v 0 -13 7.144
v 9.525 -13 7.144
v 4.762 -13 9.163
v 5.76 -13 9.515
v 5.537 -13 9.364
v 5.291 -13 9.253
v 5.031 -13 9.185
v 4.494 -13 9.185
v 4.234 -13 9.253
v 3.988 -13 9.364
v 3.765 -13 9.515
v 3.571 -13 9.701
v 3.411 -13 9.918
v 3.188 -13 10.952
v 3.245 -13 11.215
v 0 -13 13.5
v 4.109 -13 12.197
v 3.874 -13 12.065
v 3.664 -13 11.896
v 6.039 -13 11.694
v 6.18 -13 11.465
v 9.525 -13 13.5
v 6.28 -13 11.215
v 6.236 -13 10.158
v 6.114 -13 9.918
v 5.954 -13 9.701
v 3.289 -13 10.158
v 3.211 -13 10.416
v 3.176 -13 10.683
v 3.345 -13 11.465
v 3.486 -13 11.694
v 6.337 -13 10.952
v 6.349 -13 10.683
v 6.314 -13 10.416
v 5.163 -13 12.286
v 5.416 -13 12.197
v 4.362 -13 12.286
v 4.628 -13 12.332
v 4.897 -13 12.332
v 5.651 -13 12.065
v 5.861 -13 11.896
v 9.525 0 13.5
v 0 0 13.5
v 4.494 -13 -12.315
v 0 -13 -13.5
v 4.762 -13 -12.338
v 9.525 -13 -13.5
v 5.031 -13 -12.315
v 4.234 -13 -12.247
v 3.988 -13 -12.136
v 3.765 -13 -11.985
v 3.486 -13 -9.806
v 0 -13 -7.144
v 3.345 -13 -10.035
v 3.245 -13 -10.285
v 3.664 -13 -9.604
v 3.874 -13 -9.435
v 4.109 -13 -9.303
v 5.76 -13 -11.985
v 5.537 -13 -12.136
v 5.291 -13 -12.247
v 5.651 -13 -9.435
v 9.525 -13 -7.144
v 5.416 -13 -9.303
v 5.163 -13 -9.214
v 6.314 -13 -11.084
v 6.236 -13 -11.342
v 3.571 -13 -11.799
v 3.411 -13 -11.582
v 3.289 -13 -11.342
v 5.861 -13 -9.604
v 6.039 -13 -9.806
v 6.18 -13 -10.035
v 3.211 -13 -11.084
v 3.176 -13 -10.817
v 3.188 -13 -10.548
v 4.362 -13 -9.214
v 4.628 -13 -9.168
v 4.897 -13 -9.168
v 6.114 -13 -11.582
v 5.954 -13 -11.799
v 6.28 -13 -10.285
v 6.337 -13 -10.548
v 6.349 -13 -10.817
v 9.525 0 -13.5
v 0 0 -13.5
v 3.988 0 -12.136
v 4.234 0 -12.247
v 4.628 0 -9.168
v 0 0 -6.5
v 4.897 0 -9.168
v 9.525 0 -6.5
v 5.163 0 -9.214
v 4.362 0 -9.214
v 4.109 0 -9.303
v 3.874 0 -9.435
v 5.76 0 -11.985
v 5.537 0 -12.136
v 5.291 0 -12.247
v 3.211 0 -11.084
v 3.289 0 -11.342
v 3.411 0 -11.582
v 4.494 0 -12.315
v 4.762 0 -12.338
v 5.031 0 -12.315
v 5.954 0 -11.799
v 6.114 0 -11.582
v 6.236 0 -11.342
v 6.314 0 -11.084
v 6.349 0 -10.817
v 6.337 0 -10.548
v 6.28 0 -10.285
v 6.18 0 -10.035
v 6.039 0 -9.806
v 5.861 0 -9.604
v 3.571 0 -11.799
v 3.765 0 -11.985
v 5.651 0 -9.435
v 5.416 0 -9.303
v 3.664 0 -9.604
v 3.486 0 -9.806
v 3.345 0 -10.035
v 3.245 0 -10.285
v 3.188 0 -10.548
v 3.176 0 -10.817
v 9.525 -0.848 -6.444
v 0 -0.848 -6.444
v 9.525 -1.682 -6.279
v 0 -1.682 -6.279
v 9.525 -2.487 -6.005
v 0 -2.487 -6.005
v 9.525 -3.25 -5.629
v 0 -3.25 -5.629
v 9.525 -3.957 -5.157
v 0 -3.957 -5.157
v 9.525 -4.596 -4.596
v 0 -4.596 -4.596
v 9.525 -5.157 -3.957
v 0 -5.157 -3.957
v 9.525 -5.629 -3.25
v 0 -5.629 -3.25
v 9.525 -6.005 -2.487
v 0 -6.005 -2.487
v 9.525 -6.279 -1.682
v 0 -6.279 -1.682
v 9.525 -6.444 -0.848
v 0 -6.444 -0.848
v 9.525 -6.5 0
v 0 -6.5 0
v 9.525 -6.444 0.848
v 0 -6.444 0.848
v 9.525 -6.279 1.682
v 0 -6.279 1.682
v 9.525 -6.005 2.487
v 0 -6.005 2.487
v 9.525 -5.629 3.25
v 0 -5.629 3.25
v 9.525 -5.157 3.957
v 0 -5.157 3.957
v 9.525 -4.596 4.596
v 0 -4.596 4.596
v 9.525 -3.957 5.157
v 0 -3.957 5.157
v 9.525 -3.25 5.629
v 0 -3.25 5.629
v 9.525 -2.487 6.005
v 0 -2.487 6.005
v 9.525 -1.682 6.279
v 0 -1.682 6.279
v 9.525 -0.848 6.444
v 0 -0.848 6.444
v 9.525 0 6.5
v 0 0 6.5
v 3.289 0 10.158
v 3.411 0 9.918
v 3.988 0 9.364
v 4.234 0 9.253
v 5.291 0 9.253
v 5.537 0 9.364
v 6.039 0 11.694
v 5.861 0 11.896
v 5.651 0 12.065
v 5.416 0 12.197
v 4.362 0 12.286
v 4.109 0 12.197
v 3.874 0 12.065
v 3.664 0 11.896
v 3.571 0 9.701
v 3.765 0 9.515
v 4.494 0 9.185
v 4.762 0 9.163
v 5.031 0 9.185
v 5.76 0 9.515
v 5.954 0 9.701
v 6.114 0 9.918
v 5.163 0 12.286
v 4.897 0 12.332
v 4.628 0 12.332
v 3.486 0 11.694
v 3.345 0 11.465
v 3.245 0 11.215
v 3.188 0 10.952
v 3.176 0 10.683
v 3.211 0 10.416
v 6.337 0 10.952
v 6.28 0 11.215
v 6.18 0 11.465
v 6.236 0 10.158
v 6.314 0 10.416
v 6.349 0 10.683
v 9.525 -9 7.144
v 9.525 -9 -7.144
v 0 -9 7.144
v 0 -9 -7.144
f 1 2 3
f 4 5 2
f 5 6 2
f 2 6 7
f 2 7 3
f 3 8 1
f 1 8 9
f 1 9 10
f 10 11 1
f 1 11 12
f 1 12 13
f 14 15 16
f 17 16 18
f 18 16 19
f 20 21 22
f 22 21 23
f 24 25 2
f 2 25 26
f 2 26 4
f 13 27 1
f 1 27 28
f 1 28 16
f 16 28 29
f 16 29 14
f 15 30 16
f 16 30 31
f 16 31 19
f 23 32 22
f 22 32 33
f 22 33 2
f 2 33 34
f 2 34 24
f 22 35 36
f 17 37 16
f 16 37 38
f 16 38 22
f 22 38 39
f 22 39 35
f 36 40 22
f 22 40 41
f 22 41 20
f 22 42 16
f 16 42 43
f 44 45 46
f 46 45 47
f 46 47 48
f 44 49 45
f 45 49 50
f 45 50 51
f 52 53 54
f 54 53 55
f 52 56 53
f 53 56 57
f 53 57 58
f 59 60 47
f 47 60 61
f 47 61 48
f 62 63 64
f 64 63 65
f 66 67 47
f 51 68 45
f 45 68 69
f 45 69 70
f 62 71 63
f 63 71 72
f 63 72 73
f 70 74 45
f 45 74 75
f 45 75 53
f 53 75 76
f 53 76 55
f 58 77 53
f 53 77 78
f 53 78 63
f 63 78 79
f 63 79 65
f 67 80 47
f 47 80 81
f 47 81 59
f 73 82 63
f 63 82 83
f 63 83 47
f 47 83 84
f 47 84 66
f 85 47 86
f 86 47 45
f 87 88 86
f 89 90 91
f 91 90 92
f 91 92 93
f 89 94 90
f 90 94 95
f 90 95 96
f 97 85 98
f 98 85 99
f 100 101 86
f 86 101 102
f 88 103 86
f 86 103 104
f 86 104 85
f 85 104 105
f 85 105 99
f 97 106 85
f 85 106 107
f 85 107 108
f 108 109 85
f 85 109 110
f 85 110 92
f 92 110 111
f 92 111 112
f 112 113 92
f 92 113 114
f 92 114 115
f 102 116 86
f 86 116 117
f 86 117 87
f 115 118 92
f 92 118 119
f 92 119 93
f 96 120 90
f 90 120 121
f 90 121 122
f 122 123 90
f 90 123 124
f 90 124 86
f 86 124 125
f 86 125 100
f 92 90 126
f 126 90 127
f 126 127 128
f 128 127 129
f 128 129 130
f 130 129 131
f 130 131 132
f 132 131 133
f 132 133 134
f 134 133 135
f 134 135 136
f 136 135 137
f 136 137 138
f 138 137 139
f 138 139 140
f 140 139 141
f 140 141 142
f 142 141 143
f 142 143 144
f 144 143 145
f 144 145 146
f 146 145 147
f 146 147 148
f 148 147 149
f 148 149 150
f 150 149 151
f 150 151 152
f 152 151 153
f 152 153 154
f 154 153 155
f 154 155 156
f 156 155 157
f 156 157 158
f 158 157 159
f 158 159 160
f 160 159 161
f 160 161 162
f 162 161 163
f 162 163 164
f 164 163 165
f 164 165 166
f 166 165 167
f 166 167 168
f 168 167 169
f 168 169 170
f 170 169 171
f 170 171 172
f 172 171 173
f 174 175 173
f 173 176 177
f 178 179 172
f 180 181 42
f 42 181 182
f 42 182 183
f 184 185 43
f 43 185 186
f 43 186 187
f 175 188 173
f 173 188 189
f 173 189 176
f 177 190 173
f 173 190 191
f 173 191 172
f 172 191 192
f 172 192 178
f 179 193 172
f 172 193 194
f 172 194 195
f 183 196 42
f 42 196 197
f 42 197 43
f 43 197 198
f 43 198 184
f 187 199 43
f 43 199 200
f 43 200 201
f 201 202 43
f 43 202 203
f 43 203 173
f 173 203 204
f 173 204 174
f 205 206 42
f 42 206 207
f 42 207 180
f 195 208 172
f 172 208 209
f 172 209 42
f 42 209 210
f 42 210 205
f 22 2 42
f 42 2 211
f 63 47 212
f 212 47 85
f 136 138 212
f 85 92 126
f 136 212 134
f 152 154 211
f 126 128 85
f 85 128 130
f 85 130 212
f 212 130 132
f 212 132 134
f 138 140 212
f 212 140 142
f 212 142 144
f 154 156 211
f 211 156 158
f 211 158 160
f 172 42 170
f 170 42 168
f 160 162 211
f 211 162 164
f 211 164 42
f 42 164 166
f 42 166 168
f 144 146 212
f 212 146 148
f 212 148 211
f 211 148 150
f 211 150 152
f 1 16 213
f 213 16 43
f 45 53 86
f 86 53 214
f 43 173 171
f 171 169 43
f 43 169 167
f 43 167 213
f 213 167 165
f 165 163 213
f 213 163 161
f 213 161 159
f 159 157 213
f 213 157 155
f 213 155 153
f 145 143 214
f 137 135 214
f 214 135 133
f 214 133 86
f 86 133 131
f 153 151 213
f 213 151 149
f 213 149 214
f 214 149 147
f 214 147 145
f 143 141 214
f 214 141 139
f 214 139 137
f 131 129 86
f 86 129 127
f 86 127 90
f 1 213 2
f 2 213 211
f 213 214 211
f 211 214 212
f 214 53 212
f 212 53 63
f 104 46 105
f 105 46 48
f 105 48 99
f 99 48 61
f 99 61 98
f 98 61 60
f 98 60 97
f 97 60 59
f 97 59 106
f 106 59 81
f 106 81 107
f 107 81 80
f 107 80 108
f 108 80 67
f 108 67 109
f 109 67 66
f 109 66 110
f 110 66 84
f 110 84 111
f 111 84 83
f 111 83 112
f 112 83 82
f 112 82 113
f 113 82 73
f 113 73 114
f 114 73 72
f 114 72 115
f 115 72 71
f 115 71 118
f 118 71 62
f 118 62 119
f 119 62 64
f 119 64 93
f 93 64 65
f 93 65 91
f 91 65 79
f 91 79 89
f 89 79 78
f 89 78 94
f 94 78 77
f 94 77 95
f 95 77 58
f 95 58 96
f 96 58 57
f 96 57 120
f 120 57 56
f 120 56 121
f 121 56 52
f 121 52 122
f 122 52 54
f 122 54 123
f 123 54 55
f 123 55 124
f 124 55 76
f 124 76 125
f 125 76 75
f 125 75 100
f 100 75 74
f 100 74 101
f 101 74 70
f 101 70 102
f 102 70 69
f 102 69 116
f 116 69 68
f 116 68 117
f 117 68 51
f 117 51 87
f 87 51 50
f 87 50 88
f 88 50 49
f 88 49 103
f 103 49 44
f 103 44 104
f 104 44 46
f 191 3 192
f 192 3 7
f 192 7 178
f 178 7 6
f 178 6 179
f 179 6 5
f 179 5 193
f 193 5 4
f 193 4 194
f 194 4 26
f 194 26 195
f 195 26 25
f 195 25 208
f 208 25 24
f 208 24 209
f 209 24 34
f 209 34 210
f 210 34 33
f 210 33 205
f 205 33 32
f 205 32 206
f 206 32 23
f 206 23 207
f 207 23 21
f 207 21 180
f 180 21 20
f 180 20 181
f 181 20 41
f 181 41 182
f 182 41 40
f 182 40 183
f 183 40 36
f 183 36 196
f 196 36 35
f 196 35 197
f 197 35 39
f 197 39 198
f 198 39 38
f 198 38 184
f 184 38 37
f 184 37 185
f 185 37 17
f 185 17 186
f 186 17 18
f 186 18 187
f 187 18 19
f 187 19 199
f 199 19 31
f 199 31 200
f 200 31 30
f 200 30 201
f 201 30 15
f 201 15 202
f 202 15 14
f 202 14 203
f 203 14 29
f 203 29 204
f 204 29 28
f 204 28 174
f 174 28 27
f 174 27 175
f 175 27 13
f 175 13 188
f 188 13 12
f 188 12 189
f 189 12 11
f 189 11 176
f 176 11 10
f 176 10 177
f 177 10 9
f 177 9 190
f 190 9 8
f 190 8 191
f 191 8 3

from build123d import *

# Parameters (mm, degrees)
BOSS_EXTRUDE1_DEPTH = 9.525
SKETCH3_W           = 14.2875
SKETCH3_H           = 4
CUT_EXTRUDE1_DEPTH  = 22.023216333
SKETCH4_R           = 1.5875
CUT_EXTRUDE2_DEPTH  = 22.023216333


with BuildPart() as part:
    # Sketch1 → Boss-Extrude1 (new body)
    with BuildSketch(Plane(origin=(0, 0, 0), x_dir=(0, 0, -1), z_dir=(1, 0, 0))):
        with BuildLine():
            Line((6.5, 0), (13.5, 0))
            Line((13.5, 0), (13.5, -13))
            Line((13.5, -13), (-13.5, -13))
            Line((-13.5, -13), (-13.5, 0))
            Line((-13.5, 0), (-6.5, 0))
            ThreePointArc((-6.5, 0), (0, -6.5), (6.5, 0))
        make_face()
    extrude(amount=BOSS_EXTRUDE1_DEPTH)

    # Sketch3 → Cut-Extrude1 (cut, through all)
    with BuildSketch(Plane(origin=(9.525, 0, 0), x_dir=(0, 0, -1), z_dir=(1, 0, 0))):
        with Locations((0, -11)):
            Rectangle(SKETCH3_W, SKETCH3_H)
    extrude(amount=-CUT_EXTRUDE1_DEPTH, mode=Mode.SUBTRACT)

    # Sketch4 → Cut-Extrude2 (cut, through all)
    with BuildSketch(Plane.XZ.offset(13)):
        with Locations(Location((4.7625, -10.75, 0), (0, 0, 270))):
            Circle(SKETCH4_R)
        with Locations(Location((4.7625, 10.75, 0), (0, 0, 270))):
            Circle(SKETCH4_R)
    extrude(amount=-CUT_EXTRUDE2_DEPTH, mode=Mode.SUBTRACT)


solid = part.part
